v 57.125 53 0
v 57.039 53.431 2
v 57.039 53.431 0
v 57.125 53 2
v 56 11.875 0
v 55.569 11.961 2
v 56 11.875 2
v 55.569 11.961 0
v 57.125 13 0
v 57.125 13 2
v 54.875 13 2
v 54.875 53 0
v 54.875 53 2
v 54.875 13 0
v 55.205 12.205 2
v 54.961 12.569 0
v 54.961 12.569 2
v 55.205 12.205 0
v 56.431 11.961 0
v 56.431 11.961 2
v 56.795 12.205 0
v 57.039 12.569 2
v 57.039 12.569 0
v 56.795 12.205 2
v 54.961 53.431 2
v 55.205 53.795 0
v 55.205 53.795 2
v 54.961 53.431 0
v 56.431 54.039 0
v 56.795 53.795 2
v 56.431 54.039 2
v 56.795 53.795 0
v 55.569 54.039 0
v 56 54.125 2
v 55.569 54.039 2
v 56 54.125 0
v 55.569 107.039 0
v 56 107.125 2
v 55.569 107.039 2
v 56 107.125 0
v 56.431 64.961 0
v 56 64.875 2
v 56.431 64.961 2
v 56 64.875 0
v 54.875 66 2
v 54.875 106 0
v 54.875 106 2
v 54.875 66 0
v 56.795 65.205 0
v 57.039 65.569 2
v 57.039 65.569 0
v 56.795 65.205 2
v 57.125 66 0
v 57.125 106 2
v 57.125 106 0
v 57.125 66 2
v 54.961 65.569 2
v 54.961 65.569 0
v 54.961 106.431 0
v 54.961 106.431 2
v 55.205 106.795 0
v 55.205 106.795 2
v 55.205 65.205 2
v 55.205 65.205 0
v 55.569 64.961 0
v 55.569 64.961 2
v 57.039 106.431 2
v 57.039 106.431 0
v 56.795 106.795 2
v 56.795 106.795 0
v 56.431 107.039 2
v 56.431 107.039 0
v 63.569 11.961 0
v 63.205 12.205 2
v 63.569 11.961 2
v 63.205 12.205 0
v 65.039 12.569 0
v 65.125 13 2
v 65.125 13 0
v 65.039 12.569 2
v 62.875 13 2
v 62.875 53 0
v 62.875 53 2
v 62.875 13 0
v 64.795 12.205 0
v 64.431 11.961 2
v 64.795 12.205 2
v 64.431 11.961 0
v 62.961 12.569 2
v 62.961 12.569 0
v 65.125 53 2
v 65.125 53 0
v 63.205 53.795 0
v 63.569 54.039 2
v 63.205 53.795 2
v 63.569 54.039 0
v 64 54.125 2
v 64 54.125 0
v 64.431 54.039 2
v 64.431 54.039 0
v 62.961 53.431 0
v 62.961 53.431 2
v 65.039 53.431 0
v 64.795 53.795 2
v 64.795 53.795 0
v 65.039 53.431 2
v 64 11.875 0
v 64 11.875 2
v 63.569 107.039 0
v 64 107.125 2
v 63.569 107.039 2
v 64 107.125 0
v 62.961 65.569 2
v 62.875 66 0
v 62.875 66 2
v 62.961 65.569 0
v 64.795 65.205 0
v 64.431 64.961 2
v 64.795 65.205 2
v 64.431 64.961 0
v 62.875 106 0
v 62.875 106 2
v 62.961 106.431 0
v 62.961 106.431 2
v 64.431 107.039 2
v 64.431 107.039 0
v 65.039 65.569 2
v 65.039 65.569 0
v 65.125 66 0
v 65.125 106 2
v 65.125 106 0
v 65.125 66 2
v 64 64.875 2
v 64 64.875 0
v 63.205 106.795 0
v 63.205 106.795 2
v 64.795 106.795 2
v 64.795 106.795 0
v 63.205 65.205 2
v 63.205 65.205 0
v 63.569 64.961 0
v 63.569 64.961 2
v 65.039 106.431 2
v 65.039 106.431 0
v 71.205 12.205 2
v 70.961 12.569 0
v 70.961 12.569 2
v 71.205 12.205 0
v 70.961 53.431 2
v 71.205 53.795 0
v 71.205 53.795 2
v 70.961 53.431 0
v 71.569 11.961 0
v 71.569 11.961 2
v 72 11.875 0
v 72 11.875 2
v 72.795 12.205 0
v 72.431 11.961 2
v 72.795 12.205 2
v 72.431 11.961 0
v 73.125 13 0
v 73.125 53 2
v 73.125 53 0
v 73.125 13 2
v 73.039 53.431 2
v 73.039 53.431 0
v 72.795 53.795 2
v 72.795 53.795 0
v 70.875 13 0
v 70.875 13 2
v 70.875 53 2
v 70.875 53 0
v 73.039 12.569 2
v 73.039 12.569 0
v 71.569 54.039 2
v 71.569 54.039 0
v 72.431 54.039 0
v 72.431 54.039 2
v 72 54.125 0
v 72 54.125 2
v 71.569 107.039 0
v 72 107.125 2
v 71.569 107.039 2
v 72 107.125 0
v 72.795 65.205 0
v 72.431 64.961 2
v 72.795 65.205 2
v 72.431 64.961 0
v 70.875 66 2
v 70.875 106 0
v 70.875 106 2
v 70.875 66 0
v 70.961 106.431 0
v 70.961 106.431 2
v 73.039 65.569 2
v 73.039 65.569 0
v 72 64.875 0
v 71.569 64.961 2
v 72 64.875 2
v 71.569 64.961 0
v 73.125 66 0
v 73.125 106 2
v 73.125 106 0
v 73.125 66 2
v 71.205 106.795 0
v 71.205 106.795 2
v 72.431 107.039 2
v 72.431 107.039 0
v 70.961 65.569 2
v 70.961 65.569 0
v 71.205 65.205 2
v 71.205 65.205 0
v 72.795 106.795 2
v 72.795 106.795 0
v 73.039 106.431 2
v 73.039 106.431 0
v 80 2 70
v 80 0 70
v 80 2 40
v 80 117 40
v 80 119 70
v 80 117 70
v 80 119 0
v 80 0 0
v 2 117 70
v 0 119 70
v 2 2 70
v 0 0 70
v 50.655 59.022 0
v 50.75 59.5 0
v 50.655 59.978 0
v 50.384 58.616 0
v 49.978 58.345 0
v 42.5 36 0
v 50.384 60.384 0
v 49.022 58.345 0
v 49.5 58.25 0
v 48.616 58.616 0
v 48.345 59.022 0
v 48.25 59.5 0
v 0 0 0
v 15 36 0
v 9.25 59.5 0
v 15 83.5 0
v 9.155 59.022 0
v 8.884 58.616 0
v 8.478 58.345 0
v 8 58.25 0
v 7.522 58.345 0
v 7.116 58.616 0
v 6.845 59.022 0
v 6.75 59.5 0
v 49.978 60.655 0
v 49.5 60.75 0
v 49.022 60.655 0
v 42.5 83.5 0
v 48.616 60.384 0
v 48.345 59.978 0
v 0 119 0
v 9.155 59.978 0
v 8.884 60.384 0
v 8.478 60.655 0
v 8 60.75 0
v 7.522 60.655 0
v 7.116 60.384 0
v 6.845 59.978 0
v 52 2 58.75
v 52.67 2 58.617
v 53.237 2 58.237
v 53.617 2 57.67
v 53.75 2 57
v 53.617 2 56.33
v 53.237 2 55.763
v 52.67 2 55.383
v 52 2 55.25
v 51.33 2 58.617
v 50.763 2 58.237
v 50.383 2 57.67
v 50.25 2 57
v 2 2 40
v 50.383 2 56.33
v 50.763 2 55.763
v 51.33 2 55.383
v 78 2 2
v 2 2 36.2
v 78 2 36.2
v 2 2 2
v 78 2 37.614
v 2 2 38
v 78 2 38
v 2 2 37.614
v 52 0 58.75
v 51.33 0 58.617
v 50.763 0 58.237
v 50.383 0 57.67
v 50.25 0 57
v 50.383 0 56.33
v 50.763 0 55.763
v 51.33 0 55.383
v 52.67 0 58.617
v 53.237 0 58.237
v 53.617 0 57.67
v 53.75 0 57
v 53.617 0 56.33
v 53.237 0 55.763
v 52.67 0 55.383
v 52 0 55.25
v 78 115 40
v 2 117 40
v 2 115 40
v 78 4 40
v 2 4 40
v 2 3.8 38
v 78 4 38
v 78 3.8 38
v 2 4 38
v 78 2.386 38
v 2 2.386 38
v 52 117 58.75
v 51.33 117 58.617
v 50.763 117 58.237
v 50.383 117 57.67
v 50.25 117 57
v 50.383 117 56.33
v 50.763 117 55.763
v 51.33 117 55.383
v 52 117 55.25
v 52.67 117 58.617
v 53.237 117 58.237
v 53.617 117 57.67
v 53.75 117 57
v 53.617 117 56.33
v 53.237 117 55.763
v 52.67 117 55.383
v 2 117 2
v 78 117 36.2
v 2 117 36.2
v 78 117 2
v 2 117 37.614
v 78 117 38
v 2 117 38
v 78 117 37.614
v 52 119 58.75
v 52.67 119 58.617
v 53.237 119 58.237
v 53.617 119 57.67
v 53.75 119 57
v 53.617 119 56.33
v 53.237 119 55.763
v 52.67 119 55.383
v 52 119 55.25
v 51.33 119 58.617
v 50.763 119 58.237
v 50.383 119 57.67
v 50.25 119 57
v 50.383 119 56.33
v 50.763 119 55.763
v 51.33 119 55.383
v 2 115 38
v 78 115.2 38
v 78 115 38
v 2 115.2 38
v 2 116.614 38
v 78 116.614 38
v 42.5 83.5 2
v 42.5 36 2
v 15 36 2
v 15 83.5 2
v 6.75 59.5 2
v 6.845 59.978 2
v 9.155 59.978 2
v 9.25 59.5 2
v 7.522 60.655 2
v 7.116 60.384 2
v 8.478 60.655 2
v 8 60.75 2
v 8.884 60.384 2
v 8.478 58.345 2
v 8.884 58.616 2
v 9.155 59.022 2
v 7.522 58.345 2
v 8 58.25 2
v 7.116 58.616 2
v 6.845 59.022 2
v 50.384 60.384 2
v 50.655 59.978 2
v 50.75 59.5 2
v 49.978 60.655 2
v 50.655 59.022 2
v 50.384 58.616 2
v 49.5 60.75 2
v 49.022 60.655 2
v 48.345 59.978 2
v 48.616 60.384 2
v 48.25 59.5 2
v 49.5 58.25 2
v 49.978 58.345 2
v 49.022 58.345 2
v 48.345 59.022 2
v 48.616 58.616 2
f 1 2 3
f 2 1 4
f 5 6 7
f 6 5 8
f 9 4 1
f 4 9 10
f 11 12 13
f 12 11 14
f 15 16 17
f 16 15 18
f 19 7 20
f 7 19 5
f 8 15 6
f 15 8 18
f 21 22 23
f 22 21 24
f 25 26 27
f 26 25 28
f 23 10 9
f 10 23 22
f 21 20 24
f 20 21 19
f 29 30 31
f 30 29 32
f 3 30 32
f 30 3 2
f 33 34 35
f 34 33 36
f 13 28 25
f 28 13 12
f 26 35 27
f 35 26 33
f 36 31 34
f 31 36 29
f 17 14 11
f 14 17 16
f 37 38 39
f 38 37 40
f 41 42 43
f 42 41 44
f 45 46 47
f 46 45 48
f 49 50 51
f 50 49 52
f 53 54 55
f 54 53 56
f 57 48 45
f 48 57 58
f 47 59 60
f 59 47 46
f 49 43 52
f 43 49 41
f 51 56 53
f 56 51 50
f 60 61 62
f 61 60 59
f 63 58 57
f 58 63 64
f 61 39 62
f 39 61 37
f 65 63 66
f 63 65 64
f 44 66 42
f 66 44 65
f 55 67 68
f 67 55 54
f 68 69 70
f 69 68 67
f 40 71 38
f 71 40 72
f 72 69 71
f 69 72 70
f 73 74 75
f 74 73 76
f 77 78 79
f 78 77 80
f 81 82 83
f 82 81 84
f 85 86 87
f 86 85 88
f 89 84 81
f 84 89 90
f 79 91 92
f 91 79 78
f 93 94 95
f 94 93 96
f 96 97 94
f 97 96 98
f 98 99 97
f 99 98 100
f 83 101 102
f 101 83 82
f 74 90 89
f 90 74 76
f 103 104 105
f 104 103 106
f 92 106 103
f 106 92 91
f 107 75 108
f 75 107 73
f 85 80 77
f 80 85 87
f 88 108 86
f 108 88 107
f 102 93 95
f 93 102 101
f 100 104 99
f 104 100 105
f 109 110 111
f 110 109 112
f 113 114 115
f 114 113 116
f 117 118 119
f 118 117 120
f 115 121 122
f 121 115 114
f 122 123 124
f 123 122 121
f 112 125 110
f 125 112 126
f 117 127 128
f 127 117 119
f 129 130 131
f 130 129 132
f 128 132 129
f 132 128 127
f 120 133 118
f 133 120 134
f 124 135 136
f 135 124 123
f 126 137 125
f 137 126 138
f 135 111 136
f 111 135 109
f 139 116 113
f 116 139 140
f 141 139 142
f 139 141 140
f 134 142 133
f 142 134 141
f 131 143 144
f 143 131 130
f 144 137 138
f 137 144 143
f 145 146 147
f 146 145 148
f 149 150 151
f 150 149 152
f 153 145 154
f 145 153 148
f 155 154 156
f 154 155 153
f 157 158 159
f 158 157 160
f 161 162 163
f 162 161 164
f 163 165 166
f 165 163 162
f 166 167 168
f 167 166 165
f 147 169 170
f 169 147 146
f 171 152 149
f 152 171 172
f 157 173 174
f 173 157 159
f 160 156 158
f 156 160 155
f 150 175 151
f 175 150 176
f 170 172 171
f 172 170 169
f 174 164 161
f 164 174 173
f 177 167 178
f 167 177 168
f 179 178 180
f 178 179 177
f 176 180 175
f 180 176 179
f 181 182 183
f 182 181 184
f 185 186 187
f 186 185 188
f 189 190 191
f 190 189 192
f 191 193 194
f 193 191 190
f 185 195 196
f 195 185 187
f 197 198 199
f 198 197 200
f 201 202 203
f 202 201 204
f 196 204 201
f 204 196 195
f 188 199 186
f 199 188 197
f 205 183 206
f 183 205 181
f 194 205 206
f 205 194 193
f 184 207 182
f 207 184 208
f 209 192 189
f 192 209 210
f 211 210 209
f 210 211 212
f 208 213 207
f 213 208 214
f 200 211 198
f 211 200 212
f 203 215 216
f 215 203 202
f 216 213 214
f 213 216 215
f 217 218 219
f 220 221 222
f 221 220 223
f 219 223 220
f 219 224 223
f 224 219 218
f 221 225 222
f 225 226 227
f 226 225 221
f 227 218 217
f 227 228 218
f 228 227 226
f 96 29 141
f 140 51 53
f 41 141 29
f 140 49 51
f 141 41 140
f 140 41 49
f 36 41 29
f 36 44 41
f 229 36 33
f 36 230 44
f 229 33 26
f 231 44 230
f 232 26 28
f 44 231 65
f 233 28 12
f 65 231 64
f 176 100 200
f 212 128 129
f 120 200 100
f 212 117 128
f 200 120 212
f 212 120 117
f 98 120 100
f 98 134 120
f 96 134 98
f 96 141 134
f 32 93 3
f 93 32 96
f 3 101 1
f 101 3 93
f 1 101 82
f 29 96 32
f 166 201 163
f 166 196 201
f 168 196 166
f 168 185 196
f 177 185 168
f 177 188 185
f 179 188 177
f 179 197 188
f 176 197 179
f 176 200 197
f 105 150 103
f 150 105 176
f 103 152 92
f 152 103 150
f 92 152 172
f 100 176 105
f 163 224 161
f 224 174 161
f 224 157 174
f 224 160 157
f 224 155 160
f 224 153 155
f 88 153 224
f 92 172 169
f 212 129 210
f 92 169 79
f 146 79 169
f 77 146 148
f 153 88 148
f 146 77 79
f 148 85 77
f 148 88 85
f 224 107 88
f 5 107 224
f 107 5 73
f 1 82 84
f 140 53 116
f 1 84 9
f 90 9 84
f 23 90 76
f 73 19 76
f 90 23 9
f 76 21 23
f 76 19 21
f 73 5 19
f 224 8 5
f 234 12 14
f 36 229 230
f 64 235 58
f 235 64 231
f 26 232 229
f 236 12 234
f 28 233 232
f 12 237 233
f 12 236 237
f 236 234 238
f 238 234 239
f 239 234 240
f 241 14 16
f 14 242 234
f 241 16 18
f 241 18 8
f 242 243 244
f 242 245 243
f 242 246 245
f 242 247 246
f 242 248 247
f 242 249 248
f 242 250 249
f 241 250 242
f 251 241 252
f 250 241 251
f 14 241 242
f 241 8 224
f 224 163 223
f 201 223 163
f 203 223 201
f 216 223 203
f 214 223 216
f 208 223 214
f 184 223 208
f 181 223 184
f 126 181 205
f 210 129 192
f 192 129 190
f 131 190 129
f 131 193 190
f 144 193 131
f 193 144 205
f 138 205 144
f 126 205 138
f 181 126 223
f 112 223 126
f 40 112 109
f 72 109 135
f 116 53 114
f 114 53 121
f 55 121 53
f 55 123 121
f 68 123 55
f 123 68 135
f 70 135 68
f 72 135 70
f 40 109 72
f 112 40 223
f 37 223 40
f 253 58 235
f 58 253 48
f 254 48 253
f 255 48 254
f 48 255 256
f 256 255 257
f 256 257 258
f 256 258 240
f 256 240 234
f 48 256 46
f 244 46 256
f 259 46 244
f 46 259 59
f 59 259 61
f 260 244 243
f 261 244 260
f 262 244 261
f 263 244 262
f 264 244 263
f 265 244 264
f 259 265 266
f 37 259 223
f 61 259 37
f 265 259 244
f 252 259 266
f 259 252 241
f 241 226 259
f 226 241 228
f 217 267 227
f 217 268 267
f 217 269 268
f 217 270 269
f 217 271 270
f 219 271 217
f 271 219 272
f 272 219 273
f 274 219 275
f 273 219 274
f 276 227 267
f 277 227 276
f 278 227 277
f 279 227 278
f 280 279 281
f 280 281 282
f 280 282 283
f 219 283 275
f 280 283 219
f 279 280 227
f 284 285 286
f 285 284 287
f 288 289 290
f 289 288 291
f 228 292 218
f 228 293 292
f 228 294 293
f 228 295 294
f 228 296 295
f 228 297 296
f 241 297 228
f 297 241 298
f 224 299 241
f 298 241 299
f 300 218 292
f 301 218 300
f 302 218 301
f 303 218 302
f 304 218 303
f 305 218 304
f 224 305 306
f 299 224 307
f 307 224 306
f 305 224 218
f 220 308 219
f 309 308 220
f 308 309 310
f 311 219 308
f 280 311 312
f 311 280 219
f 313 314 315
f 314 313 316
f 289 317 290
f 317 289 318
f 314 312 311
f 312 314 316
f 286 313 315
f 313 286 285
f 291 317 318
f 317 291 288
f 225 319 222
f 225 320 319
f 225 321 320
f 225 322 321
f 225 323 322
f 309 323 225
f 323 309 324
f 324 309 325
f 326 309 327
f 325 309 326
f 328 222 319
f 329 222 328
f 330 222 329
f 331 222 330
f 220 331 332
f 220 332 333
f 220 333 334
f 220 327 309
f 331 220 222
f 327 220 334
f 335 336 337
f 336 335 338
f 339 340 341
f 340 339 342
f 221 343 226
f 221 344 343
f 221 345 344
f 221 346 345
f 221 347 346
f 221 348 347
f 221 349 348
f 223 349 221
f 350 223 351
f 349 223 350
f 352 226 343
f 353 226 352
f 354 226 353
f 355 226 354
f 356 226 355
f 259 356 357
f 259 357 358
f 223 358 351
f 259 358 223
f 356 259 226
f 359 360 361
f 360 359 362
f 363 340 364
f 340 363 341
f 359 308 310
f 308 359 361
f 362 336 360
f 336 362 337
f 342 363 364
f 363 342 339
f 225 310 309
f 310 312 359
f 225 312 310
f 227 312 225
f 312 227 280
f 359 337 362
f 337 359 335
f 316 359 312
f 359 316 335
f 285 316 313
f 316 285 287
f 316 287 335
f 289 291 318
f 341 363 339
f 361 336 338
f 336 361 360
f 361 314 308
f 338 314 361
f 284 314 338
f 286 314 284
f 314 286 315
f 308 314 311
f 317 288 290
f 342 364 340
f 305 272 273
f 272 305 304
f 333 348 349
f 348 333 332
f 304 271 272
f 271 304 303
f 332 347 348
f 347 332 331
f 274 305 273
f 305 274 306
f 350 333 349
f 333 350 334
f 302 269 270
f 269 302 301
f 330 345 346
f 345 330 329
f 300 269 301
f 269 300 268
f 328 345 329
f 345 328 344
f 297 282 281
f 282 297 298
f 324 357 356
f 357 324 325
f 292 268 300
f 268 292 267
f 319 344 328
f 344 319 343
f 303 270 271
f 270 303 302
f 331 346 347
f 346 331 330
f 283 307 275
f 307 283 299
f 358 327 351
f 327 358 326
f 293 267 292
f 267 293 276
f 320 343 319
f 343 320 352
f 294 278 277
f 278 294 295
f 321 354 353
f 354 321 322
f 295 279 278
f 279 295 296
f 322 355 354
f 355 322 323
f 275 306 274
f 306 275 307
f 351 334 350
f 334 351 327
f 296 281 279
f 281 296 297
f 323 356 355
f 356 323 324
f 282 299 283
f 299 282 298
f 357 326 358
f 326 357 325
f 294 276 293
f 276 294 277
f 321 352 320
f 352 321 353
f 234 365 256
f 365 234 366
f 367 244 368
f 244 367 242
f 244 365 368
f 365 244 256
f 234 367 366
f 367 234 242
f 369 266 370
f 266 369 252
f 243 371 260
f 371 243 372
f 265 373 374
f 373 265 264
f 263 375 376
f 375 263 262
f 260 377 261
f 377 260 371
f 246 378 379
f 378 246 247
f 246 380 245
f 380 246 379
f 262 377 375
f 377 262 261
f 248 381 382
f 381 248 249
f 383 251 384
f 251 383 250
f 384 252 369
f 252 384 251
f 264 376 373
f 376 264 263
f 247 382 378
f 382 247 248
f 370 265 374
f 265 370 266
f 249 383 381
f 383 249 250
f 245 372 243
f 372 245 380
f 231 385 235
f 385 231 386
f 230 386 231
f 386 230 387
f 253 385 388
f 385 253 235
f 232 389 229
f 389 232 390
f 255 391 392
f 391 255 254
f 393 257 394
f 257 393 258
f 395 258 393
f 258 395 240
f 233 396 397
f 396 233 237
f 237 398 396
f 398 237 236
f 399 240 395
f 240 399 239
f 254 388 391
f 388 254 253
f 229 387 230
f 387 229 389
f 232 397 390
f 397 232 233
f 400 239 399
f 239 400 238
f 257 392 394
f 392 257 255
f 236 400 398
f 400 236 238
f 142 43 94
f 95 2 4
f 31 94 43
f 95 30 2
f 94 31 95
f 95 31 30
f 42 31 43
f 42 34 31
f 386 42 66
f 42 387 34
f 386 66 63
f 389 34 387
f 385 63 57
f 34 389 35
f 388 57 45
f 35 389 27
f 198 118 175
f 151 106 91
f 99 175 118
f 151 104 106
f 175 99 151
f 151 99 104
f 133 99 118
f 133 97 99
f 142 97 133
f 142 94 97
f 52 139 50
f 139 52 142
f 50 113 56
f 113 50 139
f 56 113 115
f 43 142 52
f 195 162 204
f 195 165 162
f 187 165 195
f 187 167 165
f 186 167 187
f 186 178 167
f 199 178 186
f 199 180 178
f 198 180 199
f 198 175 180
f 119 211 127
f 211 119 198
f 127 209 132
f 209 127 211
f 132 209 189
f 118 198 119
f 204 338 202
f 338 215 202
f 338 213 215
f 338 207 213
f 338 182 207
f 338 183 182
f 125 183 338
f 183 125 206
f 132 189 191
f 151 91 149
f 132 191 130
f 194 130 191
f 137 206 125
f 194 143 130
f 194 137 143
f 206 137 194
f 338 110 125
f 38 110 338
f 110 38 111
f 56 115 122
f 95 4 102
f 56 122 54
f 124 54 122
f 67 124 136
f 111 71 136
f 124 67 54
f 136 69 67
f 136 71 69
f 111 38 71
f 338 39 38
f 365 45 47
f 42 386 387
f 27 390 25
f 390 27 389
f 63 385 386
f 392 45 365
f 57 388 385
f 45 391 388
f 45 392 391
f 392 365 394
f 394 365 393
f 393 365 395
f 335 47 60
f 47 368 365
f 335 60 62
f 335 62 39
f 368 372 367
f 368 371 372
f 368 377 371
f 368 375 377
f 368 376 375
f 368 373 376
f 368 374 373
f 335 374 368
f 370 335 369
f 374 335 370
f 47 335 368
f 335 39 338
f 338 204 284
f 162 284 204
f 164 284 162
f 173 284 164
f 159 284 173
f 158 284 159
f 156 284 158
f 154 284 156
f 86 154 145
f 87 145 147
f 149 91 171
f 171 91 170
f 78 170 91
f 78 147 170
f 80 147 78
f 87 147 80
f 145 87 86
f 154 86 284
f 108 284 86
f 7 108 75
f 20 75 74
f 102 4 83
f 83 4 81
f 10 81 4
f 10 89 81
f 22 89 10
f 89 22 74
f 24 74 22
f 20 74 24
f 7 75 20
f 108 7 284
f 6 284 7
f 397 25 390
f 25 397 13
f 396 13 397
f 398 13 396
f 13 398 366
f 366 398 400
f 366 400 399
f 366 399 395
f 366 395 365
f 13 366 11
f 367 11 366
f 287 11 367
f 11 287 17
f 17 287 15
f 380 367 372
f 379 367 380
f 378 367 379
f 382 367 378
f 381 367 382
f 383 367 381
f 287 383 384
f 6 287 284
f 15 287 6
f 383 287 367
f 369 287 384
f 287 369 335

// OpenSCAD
height_z = 70;
wall = 2;
outer_y = 115 + wall * 2;
spacer_x = 20;
inner_x = 60;

module bottom() {
  bottom_y = outer_y + wall * 2;
  bottom_x = spacer_x + inner_x;

  module ventilation_line(start_x) {
    module dot() { cylinder(h = 3, d = 2.25, $fn=16); }
    line_length = 40;
    y_gap = (outer_y - line_length * 2) / 3;

    module line(line_x, line_y) {
      hull() {
        translate([line_x, line_y, -0.1]) dot();
        translate([line_x, line_y + line_length, -0.1]) dot();
      }
    }

    line(start_x, y_gap);
    line(start_x, y_gap * 2 + line_length);
  }

  module ventilation(start_x) {
    ventilation_line(start_x);
    ventilation_line(start_x + 8);
    ventilation_line(start_x + 16);
  }

  module socket_cutout() {
    cutout_y = 47.5;
    cutout_x = 27.5;
    start_x = 15;
    start_y = (bottom_y - 47 - wall * 2) / 2;

    translate([start_x, start_y, -0.1]) cube([cutout_x, cutout_y, 5]);

    translate([start_x - 7, bottom_y / 2 - wall, -0.1]) cylinder(d=2.5, h=5, $fn=16);
    translate([start_x + 7 + cutout_x, bottom_y / 2 - wall, -0.1]) cylinder(d=2.5, h=5, $fn=16);
  }

  difference() {
    cube([bottom_x, outer_y, wall]);
    ventilation(36 + spacer_x);

    socket_cutout();
  }
}

module mount_holes() {
  mount_z = height_z - 13;
  mount_x = spacer_x + 32;

  translate([mount_x,-10,mount_z]) {
    rotate([-90,0,0]) cylinder(h = 200, d = 3.5, $fn=16);
  }
}

module walls() {
  bottom_x = spacer_x + inner_x - wall;
  socket_box_height = 40;

  module wall_with_support() {
    cube([spacer_x + inner_x, 2, height_z]);
    translate([0, 0, socket_box_height - 2]) cube([spacer_x + inner_x, wall * 2, wall]);
    translate([0, 1, socket_box_height - 4.8]) rotate([45,0,0]) cube([spacer_x + inner_x, wall * 2, 1]);
  }

  wall_with_support();
  translate([0, outer_y, 0]) mirror([0,180,0]) wall_with_support();

  cube([wall, outer_y, height_z]);
  translate([bottom_x,0,0]) cube([wall, outer_y, socket_box_height]);
}

bottom();
difference() {
  walls();
  mount_holes();
}
